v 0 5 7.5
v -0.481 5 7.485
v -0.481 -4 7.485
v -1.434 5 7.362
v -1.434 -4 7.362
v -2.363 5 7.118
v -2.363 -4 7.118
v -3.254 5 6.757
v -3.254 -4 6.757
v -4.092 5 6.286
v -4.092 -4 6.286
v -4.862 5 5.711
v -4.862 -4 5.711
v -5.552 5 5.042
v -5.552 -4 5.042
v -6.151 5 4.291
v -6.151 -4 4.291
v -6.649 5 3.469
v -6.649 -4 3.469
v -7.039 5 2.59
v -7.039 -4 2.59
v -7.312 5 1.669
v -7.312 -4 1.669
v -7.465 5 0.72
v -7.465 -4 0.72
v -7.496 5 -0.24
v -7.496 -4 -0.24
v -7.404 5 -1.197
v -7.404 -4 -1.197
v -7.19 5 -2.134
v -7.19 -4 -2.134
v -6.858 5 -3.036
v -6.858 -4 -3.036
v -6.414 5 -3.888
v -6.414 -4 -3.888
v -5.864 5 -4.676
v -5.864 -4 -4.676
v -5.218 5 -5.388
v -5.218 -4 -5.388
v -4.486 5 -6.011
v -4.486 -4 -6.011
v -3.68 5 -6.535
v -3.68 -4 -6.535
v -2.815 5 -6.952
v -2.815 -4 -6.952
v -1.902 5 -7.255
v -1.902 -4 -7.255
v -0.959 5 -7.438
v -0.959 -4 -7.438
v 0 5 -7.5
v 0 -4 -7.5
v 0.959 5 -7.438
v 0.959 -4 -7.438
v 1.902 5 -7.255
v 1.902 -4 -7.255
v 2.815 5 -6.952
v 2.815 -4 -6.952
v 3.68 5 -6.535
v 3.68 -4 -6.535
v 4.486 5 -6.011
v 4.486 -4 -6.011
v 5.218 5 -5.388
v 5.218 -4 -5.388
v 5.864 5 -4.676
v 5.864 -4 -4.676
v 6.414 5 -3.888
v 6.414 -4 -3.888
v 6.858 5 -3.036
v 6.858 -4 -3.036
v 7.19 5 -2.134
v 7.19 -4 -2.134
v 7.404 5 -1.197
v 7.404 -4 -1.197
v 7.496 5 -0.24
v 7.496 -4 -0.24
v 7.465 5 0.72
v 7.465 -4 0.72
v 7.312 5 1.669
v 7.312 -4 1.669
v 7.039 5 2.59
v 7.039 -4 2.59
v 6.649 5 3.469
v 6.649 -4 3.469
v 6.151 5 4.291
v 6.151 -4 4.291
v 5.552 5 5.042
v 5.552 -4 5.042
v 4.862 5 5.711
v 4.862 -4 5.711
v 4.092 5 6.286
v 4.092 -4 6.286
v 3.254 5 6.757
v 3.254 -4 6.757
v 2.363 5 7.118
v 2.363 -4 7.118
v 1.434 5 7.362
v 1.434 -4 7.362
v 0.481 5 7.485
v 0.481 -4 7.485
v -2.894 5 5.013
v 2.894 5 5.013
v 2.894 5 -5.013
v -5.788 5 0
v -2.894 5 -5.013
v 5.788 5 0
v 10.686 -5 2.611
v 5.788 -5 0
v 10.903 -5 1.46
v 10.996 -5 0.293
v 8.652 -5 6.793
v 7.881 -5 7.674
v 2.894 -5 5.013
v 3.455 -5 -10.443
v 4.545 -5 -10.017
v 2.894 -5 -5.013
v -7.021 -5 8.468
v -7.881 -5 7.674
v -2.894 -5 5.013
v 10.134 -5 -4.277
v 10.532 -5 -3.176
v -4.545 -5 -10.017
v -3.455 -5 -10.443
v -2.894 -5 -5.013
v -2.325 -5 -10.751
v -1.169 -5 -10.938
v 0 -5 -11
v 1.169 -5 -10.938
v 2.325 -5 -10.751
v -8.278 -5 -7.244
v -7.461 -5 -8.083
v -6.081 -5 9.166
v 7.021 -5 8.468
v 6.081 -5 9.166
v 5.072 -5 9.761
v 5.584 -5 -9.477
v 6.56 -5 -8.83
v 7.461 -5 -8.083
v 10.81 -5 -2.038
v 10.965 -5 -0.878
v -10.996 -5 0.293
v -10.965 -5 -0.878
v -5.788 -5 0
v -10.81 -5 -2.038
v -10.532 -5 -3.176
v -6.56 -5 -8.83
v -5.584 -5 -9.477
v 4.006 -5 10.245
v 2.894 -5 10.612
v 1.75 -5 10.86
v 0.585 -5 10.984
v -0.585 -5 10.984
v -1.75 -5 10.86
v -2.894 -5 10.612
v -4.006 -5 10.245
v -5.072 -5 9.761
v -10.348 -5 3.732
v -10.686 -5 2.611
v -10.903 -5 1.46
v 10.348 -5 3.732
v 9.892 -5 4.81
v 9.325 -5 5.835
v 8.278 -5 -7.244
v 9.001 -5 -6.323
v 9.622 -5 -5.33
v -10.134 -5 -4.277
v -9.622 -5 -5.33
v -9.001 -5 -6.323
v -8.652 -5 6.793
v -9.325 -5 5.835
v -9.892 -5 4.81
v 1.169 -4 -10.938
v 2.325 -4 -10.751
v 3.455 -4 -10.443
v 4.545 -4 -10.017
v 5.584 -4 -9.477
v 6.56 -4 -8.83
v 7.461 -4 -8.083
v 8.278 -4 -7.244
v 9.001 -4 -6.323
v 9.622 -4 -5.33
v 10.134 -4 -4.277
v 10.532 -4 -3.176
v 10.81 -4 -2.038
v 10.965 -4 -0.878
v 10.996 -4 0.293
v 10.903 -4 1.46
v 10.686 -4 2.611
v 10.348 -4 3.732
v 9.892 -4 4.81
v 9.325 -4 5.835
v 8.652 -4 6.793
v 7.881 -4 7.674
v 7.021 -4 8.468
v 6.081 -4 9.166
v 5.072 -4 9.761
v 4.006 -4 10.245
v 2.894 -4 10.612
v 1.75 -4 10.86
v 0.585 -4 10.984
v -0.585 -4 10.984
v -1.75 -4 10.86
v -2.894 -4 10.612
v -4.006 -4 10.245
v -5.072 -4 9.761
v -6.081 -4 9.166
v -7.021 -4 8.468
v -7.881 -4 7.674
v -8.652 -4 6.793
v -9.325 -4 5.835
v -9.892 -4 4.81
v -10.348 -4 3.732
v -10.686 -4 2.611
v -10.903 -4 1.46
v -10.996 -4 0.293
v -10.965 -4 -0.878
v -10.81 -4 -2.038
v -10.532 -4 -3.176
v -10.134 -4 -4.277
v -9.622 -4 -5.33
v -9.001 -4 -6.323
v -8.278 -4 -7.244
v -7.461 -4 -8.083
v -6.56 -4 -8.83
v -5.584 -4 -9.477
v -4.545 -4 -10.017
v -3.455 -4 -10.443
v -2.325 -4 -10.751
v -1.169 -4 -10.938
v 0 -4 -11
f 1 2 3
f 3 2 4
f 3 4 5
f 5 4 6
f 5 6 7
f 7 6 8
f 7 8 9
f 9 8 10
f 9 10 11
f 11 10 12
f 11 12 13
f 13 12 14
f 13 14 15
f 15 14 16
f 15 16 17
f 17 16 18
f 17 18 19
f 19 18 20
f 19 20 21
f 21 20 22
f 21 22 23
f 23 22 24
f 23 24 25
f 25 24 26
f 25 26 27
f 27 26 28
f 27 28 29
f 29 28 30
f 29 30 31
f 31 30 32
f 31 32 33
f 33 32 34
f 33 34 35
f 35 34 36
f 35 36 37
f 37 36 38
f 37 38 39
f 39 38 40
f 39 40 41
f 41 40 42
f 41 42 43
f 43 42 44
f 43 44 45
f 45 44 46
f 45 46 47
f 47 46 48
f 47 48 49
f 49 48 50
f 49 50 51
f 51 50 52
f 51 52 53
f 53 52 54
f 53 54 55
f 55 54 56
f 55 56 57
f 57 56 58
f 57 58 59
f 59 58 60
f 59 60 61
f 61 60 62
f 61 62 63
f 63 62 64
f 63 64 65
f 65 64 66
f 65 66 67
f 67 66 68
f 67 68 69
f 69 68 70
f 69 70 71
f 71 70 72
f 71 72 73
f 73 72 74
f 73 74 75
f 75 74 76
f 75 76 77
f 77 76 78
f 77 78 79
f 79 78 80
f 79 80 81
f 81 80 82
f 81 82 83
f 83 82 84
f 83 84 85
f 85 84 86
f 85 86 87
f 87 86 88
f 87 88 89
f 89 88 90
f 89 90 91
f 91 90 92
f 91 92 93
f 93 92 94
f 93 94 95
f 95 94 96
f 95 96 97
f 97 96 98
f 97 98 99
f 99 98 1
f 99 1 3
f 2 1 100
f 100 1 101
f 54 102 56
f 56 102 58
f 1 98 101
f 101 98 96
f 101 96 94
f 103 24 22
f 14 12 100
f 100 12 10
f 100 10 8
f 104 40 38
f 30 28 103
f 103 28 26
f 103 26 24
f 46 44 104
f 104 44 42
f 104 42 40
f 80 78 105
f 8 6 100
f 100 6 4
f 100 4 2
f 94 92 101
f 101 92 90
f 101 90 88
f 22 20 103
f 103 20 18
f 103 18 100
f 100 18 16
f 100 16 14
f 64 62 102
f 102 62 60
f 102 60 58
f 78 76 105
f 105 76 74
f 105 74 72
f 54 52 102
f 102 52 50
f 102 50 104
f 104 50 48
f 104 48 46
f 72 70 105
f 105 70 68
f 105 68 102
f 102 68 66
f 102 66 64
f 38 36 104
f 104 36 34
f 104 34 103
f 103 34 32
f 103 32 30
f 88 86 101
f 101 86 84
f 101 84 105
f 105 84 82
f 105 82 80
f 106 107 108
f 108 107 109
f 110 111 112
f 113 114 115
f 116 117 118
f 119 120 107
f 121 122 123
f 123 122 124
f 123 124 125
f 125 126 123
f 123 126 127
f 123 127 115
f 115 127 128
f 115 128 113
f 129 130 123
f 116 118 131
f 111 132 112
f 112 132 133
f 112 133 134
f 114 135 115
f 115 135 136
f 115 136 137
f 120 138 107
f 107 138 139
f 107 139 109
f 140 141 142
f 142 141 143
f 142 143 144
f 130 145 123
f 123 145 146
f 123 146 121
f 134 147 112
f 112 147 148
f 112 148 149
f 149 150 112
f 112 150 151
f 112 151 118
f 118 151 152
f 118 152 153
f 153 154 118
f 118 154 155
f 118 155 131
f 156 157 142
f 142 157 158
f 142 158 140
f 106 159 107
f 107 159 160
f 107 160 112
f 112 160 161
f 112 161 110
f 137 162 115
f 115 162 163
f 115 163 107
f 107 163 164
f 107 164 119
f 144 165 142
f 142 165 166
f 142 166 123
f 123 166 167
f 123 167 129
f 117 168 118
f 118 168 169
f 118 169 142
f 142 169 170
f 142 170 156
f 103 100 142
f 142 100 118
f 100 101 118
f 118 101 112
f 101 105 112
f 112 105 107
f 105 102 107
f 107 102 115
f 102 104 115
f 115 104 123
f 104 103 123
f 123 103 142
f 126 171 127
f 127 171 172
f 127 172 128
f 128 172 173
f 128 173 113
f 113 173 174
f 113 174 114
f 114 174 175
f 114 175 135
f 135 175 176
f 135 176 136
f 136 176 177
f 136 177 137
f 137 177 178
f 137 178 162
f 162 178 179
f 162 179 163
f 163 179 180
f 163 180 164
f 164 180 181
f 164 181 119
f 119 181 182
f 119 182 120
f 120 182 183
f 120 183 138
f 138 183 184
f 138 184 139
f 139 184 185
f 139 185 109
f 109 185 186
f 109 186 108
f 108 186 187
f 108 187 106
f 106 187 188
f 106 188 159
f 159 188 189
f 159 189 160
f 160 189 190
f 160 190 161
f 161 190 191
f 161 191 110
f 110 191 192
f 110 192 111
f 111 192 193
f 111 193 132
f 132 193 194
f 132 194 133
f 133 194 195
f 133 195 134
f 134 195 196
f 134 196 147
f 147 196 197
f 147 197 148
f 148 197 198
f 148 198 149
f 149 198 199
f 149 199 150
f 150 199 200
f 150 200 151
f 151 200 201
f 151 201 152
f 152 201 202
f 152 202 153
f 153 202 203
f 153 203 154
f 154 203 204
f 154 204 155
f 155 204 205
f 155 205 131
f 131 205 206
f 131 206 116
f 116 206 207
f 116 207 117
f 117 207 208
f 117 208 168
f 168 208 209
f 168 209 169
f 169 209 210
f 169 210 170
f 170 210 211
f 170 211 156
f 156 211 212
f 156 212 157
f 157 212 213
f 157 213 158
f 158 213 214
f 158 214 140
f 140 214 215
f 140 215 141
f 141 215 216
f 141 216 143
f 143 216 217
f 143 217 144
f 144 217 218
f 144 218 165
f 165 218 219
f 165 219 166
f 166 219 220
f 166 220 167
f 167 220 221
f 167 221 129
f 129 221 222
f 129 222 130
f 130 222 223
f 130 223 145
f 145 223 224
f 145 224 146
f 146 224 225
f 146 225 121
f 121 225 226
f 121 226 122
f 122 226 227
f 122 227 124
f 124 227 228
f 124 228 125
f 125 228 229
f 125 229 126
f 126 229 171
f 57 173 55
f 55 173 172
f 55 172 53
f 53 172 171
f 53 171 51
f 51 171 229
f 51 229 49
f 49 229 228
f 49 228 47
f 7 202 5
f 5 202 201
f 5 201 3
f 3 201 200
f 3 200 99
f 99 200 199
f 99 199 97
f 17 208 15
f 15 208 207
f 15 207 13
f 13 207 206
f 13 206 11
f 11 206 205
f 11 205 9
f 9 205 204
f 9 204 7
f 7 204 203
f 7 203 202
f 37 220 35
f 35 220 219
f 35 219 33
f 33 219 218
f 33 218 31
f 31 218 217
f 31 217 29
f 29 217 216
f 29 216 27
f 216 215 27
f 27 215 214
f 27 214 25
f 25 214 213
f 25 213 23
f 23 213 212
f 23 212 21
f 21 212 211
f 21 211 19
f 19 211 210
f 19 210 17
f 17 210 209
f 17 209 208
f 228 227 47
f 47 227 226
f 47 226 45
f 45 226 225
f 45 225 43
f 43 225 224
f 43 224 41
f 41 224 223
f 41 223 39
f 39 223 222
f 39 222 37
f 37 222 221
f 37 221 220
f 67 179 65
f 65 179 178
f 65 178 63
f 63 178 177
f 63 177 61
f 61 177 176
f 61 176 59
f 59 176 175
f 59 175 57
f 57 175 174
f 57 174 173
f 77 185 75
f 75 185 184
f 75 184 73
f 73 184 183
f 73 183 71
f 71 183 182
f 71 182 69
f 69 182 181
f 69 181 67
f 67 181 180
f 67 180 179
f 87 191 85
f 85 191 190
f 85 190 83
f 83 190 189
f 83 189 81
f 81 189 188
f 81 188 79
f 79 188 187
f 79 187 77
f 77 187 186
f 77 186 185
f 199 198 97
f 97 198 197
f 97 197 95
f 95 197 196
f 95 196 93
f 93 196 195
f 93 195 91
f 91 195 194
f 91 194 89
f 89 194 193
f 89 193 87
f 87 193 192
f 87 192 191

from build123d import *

# Parameters (mm, degrees)
SKETCH1_R           = 7.5
BOSS_EXTRUDE1_DEPTH = 5
BOSS_EXTRUDE2_START = -1
SKETCH2_R           = 11
SKETCH2_R_2         = 7.5
BOSS_EXTRUDE2_DEPTH = 1


with BuildPart() as part:
    # Sketch1 → Boss-Extrude1 (new, symmetric)
    with BuildSketch(Plane(origin=(0, 0, 0), x_dir=(1, 0, 0), z_dir=(0, 1, 0))):
        Circle(SKETCH1_R)
        Polygon((-2.893968224, -5.0125), (2.893968224, -5.0125), (5.787936449, 0), (2.893968224, 5.0125), (-2.893968224, 5.0125), (-5.787936449, 0), align=None, mode=Mode.SUBTRACT)
    extrude(amount=BOSS_EXTRUDE1_DEPTH, both=True)

    # Sketch2 → Boss-Extrude2 (add)
    with BuildSketch(Plane.XZ.offset(5).offset(BOSS_EXTRUDE2_START)):
        Circle(SKETCH2_R)
        Circle(SKETCH2_R_2, mode=Mode.SUBTRACT)
    extrude(amount=BOSS_EXTRUDE2_DEPTH)


solid = part.part
